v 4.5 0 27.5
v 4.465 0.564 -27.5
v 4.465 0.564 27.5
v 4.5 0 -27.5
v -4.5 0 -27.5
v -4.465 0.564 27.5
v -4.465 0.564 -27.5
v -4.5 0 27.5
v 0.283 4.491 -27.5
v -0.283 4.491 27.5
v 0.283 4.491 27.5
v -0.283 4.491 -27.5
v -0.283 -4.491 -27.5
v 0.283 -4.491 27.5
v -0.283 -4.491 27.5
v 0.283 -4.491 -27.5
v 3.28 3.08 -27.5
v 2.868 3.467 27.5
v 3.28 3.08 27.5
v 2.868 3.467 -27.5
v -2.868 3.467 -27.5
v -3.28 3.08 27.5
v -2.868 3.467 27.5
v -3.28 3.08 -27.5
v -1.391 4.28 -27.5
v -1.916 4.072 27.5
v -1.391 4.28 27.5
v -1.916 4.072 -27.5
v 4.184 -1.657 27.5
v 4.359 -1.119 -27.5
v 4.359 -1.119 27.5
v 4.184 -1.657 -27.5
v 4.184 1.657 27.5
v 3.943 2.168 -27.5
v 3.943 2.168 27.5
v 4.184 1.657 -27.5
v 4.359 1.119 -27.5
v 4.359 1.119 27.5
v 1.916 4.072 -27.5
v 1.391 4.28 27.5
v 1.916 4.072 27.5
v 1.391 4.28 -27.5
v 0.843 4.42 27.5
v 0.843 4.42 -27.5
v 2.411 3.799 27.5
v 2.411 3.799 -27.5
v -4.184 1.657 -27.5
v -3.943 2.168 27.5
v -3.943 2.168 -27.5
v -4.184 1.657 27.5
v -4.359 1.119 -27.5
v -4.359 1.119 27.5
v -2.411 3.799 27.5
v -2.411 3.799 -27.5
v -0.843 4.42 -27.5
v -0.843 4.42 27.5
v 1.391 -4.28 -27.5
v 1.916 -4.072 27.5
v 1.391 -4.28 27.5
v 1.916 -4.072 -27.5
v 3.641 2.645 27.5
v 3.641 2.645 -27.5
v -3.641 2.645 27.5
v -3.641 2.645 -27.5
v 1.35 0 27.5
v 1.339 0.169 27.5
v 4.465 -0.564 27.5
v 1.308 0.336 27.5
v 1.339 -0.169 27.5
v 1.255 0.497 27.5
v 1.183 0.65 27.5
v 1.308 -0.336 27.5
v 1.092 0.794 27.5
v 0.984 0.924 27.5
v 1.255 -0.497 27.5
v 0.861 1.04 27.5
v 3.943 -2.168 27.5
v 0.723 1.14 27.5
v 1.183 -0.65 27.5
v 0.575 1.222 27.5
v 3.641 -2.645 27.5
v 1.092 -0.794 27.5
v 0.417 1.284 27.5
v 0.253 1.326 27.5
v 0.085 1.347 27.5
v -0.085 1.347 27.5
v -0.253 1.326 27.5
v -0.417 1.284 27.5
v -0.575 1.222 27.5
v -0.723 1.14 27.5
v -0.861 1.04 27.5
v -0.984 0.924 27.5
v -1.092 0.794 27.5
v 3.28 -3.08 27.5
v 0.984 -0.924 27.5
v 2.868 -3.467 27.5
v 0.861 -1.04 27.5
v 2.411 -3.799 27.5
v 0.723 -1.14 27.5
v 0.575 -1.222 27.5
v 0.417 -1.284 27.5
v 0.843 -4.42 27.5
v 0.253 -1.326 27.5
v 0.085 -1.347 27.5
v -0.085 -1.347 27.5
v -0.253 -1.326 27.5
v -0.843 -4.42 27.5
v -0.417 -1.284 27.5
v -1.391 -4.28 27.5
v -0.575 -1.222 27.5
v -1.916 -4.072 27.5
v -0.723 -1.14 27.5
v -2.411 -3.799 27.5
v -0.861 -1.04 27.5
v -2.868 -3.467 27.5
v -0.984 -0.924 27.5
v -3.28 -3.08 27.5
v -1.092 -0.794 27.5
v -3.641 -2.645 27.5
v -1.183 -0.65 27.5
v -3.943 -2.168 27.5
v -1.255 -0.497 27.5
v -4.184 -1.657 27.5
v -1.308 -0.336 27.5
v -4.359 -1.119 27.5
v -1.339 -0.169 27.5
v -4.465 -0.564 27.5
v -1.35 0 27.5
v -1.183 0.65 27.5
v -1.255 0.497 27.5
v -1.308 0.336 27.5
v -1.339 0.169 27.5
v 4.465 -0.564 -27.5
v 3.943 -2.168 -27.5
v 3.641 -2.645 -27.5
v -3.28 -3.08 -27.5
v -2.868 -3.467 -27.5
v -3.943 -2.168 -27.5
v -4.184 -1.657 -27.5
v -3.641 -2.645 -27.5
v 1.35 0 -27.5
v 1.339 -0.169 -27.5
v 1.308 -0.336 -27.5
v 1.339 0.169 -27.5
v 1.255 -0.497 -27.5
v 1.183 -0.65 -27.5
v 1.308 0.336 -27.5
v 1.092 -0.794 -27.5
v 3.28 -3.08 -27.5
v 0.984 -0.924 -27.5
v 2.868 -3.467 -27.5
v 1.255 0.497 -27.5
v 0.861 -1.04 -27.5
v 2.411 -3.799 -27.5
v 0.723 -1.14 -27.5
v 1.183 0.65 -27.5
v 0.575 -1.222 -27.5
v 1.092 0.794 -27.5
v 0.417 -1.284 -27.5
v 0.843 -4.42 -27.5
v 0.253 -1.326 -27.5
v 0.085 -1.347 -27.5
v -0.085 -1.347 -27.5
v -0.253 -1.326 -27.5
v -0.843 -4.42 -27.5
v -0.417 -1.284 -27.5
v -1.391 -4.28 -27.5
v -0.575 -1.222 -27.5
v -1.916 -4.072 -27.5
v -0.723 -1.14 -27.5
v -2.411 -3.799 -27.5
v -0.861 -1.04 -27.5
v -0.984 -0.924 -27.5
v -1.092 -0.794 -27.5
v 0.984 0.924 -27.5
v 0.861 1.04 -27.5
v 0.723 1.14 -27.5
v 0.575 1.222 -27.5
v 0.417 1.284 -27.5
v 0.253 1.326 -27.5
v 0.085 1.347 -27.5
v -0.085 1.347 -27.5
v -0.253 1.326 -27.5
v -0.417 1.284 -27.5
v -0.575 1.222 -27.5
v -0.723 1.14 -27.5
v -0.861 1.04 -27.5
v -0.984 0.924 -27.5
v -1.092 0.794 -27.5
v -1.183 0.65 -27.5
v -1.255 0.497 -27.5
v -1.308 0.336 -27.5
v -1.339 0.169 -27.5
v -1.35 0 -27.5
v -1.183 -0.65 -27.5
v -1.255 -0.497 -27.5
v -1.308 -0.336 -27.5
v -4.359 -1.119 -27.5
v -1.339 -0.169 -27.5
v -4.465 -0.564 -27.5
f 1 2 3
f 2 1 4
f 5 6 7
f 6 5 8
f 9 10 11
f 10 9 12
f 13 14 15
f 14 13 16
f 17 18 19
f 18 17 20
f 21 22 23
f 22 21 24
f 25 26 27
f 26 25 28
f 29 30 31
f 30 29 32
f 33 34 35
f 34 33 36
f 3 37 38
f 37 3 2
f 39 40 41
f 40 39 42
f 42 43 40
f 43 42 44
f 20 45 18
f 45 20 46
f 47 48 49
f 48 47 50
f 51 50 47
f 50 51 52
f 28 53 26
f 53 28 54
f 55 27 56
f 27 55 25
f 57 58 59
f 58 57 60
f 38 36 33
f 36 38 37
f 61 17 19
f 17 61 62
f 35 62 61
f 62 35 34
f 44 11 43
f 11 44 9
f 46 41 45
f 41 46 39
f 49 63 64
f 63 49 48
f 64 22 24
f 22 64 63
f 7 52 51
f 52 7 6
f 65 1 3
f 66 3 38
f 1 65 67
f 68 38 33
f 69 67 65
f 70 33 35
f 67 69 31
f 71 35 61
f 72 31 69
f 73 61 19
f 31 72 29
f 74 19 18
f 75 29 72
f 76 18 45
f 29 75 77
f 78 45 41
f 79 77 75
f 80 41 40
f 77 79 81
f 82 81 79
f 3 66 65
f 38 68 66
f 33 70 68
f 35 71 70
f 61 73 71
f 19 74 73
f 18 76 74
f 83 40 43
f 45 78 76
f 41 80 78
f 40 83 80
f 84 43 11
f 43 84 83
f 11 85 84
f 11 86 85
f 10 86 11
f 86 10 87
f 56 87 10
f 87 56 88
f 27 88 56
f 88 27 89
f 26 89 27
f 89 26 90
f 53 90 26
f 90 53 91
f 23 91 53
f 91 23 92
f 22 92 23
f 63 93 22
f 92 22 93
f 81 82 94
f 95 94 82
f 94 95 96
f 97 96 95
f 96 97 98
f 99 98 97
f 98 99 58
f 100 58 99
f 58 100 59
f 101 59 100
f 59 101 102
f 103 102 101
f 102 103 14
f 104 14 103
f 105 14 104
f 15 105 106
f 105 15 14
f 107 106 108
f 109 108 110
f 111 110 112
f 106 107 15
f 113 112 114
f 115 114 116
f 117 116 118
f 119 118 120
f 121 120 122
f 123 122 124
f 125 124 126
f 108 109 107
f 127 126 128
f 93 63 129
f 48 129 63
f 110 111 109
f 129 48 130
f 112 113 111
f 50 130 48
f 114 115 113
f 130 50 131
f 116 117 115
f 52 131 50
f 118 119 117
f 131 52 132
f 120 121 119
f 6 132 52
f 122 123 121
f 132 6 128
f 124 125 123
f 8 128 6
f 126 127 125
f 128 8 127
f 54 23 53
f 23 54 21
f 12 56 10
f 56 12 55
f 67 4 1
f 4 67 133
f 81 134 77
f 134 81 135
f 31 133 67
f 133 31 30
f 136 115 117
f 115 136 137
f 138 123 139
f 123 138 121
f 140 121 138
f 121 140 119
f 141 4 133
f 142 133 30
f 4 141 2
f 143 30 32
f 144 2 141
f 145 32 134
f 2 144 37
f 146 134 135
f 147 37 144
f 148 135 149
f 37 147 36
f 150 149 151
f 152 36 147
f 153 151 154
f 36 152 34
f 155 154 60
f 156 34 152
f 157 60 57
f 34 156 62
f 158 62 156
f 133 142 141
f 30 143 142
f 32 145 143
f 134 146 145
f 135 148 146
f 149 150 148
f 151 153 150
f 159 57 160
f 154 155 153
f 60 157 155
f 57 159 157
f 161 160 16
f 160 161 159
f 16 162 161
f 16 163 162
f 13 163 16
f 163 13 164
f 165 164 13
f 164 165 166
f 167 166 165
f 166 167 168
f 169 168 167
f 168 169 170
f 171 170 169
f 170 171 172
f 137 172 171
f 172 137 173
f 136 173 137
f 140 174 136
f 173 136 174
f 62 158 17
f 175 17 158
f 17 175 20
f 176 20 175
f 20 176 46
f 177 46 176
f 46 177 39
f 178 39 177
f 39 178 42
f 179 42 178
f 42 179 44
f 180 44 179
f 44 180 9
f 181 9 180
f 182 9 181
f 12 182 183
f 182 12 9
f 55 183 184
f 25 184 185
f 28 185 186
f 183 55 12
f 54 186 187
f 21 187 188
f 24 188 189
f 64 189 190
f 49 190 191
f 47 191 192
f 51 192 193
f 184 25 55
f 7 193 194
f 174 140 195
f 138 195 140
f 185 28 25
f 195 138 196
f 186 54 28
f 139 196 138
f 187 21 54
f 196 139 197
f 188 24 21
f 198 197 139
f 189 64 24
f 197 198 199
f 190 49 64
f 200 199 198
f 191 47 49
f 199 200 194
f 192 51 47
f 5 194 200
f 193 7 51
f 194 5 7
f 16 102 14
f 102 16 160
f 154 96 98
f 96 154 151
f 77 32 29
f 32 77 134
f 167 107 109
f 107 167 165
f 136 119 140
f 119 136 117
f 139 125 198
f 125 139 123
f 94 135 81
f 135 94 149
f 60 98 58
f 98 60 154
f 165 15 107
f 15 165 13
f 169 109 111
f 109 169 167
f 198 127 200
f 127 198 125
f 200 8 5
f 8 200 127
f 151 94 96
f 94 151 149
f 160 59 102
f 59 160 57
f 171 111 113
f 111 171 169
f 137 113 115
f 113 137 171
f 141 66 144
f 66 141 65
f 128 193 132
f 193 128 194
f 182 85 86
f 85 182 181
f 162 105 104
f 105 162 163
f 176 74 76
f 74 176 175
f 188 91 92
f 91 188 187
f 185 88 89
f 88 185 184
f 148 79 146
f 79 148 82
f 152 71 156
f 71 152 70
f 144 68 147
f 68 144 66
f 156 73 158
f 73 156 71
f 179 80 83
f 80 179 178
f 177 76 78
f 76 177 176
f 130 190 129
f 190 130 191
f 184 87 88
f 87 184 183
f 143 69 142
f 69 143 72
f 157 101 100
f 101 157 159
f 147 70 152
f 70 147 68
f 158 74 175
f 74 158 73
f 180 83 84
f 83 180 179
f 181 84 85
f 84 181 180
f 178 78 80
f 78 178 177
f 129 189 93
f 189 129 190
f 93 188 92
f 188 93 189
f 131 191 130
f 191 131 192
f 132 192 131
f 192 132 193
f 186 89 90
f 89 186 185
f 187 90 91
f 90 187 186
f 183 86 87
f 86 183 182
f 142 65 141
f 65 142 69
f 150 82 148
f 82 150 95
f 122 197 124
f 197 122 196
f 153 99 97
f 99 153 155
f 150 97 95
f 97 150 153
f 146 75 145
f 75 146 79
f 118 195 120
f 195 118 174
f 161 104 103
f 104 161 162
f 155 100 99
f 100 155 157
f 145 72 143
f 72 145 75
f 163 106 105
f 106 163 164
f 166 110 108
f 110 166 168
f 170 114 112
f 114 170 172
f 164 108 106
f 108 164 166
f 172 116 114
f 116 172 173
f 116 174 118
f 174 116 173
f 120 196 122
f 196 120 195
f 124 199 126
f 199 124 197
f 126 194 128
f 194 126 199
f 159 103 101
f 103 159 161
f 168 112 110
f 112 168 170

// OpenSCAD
$fn = 50;


difference() {
	union() {
		translate(v = [0, 0, -27.5000000000]) {
			cylinder(h = 55, r = 4.5000000000);
		}
	}
	union() {
		translate(v = [0, 0, -100.0000000000]) {
			cylinder(h = 200, r = 1.3500000000);
		}
	}
}
